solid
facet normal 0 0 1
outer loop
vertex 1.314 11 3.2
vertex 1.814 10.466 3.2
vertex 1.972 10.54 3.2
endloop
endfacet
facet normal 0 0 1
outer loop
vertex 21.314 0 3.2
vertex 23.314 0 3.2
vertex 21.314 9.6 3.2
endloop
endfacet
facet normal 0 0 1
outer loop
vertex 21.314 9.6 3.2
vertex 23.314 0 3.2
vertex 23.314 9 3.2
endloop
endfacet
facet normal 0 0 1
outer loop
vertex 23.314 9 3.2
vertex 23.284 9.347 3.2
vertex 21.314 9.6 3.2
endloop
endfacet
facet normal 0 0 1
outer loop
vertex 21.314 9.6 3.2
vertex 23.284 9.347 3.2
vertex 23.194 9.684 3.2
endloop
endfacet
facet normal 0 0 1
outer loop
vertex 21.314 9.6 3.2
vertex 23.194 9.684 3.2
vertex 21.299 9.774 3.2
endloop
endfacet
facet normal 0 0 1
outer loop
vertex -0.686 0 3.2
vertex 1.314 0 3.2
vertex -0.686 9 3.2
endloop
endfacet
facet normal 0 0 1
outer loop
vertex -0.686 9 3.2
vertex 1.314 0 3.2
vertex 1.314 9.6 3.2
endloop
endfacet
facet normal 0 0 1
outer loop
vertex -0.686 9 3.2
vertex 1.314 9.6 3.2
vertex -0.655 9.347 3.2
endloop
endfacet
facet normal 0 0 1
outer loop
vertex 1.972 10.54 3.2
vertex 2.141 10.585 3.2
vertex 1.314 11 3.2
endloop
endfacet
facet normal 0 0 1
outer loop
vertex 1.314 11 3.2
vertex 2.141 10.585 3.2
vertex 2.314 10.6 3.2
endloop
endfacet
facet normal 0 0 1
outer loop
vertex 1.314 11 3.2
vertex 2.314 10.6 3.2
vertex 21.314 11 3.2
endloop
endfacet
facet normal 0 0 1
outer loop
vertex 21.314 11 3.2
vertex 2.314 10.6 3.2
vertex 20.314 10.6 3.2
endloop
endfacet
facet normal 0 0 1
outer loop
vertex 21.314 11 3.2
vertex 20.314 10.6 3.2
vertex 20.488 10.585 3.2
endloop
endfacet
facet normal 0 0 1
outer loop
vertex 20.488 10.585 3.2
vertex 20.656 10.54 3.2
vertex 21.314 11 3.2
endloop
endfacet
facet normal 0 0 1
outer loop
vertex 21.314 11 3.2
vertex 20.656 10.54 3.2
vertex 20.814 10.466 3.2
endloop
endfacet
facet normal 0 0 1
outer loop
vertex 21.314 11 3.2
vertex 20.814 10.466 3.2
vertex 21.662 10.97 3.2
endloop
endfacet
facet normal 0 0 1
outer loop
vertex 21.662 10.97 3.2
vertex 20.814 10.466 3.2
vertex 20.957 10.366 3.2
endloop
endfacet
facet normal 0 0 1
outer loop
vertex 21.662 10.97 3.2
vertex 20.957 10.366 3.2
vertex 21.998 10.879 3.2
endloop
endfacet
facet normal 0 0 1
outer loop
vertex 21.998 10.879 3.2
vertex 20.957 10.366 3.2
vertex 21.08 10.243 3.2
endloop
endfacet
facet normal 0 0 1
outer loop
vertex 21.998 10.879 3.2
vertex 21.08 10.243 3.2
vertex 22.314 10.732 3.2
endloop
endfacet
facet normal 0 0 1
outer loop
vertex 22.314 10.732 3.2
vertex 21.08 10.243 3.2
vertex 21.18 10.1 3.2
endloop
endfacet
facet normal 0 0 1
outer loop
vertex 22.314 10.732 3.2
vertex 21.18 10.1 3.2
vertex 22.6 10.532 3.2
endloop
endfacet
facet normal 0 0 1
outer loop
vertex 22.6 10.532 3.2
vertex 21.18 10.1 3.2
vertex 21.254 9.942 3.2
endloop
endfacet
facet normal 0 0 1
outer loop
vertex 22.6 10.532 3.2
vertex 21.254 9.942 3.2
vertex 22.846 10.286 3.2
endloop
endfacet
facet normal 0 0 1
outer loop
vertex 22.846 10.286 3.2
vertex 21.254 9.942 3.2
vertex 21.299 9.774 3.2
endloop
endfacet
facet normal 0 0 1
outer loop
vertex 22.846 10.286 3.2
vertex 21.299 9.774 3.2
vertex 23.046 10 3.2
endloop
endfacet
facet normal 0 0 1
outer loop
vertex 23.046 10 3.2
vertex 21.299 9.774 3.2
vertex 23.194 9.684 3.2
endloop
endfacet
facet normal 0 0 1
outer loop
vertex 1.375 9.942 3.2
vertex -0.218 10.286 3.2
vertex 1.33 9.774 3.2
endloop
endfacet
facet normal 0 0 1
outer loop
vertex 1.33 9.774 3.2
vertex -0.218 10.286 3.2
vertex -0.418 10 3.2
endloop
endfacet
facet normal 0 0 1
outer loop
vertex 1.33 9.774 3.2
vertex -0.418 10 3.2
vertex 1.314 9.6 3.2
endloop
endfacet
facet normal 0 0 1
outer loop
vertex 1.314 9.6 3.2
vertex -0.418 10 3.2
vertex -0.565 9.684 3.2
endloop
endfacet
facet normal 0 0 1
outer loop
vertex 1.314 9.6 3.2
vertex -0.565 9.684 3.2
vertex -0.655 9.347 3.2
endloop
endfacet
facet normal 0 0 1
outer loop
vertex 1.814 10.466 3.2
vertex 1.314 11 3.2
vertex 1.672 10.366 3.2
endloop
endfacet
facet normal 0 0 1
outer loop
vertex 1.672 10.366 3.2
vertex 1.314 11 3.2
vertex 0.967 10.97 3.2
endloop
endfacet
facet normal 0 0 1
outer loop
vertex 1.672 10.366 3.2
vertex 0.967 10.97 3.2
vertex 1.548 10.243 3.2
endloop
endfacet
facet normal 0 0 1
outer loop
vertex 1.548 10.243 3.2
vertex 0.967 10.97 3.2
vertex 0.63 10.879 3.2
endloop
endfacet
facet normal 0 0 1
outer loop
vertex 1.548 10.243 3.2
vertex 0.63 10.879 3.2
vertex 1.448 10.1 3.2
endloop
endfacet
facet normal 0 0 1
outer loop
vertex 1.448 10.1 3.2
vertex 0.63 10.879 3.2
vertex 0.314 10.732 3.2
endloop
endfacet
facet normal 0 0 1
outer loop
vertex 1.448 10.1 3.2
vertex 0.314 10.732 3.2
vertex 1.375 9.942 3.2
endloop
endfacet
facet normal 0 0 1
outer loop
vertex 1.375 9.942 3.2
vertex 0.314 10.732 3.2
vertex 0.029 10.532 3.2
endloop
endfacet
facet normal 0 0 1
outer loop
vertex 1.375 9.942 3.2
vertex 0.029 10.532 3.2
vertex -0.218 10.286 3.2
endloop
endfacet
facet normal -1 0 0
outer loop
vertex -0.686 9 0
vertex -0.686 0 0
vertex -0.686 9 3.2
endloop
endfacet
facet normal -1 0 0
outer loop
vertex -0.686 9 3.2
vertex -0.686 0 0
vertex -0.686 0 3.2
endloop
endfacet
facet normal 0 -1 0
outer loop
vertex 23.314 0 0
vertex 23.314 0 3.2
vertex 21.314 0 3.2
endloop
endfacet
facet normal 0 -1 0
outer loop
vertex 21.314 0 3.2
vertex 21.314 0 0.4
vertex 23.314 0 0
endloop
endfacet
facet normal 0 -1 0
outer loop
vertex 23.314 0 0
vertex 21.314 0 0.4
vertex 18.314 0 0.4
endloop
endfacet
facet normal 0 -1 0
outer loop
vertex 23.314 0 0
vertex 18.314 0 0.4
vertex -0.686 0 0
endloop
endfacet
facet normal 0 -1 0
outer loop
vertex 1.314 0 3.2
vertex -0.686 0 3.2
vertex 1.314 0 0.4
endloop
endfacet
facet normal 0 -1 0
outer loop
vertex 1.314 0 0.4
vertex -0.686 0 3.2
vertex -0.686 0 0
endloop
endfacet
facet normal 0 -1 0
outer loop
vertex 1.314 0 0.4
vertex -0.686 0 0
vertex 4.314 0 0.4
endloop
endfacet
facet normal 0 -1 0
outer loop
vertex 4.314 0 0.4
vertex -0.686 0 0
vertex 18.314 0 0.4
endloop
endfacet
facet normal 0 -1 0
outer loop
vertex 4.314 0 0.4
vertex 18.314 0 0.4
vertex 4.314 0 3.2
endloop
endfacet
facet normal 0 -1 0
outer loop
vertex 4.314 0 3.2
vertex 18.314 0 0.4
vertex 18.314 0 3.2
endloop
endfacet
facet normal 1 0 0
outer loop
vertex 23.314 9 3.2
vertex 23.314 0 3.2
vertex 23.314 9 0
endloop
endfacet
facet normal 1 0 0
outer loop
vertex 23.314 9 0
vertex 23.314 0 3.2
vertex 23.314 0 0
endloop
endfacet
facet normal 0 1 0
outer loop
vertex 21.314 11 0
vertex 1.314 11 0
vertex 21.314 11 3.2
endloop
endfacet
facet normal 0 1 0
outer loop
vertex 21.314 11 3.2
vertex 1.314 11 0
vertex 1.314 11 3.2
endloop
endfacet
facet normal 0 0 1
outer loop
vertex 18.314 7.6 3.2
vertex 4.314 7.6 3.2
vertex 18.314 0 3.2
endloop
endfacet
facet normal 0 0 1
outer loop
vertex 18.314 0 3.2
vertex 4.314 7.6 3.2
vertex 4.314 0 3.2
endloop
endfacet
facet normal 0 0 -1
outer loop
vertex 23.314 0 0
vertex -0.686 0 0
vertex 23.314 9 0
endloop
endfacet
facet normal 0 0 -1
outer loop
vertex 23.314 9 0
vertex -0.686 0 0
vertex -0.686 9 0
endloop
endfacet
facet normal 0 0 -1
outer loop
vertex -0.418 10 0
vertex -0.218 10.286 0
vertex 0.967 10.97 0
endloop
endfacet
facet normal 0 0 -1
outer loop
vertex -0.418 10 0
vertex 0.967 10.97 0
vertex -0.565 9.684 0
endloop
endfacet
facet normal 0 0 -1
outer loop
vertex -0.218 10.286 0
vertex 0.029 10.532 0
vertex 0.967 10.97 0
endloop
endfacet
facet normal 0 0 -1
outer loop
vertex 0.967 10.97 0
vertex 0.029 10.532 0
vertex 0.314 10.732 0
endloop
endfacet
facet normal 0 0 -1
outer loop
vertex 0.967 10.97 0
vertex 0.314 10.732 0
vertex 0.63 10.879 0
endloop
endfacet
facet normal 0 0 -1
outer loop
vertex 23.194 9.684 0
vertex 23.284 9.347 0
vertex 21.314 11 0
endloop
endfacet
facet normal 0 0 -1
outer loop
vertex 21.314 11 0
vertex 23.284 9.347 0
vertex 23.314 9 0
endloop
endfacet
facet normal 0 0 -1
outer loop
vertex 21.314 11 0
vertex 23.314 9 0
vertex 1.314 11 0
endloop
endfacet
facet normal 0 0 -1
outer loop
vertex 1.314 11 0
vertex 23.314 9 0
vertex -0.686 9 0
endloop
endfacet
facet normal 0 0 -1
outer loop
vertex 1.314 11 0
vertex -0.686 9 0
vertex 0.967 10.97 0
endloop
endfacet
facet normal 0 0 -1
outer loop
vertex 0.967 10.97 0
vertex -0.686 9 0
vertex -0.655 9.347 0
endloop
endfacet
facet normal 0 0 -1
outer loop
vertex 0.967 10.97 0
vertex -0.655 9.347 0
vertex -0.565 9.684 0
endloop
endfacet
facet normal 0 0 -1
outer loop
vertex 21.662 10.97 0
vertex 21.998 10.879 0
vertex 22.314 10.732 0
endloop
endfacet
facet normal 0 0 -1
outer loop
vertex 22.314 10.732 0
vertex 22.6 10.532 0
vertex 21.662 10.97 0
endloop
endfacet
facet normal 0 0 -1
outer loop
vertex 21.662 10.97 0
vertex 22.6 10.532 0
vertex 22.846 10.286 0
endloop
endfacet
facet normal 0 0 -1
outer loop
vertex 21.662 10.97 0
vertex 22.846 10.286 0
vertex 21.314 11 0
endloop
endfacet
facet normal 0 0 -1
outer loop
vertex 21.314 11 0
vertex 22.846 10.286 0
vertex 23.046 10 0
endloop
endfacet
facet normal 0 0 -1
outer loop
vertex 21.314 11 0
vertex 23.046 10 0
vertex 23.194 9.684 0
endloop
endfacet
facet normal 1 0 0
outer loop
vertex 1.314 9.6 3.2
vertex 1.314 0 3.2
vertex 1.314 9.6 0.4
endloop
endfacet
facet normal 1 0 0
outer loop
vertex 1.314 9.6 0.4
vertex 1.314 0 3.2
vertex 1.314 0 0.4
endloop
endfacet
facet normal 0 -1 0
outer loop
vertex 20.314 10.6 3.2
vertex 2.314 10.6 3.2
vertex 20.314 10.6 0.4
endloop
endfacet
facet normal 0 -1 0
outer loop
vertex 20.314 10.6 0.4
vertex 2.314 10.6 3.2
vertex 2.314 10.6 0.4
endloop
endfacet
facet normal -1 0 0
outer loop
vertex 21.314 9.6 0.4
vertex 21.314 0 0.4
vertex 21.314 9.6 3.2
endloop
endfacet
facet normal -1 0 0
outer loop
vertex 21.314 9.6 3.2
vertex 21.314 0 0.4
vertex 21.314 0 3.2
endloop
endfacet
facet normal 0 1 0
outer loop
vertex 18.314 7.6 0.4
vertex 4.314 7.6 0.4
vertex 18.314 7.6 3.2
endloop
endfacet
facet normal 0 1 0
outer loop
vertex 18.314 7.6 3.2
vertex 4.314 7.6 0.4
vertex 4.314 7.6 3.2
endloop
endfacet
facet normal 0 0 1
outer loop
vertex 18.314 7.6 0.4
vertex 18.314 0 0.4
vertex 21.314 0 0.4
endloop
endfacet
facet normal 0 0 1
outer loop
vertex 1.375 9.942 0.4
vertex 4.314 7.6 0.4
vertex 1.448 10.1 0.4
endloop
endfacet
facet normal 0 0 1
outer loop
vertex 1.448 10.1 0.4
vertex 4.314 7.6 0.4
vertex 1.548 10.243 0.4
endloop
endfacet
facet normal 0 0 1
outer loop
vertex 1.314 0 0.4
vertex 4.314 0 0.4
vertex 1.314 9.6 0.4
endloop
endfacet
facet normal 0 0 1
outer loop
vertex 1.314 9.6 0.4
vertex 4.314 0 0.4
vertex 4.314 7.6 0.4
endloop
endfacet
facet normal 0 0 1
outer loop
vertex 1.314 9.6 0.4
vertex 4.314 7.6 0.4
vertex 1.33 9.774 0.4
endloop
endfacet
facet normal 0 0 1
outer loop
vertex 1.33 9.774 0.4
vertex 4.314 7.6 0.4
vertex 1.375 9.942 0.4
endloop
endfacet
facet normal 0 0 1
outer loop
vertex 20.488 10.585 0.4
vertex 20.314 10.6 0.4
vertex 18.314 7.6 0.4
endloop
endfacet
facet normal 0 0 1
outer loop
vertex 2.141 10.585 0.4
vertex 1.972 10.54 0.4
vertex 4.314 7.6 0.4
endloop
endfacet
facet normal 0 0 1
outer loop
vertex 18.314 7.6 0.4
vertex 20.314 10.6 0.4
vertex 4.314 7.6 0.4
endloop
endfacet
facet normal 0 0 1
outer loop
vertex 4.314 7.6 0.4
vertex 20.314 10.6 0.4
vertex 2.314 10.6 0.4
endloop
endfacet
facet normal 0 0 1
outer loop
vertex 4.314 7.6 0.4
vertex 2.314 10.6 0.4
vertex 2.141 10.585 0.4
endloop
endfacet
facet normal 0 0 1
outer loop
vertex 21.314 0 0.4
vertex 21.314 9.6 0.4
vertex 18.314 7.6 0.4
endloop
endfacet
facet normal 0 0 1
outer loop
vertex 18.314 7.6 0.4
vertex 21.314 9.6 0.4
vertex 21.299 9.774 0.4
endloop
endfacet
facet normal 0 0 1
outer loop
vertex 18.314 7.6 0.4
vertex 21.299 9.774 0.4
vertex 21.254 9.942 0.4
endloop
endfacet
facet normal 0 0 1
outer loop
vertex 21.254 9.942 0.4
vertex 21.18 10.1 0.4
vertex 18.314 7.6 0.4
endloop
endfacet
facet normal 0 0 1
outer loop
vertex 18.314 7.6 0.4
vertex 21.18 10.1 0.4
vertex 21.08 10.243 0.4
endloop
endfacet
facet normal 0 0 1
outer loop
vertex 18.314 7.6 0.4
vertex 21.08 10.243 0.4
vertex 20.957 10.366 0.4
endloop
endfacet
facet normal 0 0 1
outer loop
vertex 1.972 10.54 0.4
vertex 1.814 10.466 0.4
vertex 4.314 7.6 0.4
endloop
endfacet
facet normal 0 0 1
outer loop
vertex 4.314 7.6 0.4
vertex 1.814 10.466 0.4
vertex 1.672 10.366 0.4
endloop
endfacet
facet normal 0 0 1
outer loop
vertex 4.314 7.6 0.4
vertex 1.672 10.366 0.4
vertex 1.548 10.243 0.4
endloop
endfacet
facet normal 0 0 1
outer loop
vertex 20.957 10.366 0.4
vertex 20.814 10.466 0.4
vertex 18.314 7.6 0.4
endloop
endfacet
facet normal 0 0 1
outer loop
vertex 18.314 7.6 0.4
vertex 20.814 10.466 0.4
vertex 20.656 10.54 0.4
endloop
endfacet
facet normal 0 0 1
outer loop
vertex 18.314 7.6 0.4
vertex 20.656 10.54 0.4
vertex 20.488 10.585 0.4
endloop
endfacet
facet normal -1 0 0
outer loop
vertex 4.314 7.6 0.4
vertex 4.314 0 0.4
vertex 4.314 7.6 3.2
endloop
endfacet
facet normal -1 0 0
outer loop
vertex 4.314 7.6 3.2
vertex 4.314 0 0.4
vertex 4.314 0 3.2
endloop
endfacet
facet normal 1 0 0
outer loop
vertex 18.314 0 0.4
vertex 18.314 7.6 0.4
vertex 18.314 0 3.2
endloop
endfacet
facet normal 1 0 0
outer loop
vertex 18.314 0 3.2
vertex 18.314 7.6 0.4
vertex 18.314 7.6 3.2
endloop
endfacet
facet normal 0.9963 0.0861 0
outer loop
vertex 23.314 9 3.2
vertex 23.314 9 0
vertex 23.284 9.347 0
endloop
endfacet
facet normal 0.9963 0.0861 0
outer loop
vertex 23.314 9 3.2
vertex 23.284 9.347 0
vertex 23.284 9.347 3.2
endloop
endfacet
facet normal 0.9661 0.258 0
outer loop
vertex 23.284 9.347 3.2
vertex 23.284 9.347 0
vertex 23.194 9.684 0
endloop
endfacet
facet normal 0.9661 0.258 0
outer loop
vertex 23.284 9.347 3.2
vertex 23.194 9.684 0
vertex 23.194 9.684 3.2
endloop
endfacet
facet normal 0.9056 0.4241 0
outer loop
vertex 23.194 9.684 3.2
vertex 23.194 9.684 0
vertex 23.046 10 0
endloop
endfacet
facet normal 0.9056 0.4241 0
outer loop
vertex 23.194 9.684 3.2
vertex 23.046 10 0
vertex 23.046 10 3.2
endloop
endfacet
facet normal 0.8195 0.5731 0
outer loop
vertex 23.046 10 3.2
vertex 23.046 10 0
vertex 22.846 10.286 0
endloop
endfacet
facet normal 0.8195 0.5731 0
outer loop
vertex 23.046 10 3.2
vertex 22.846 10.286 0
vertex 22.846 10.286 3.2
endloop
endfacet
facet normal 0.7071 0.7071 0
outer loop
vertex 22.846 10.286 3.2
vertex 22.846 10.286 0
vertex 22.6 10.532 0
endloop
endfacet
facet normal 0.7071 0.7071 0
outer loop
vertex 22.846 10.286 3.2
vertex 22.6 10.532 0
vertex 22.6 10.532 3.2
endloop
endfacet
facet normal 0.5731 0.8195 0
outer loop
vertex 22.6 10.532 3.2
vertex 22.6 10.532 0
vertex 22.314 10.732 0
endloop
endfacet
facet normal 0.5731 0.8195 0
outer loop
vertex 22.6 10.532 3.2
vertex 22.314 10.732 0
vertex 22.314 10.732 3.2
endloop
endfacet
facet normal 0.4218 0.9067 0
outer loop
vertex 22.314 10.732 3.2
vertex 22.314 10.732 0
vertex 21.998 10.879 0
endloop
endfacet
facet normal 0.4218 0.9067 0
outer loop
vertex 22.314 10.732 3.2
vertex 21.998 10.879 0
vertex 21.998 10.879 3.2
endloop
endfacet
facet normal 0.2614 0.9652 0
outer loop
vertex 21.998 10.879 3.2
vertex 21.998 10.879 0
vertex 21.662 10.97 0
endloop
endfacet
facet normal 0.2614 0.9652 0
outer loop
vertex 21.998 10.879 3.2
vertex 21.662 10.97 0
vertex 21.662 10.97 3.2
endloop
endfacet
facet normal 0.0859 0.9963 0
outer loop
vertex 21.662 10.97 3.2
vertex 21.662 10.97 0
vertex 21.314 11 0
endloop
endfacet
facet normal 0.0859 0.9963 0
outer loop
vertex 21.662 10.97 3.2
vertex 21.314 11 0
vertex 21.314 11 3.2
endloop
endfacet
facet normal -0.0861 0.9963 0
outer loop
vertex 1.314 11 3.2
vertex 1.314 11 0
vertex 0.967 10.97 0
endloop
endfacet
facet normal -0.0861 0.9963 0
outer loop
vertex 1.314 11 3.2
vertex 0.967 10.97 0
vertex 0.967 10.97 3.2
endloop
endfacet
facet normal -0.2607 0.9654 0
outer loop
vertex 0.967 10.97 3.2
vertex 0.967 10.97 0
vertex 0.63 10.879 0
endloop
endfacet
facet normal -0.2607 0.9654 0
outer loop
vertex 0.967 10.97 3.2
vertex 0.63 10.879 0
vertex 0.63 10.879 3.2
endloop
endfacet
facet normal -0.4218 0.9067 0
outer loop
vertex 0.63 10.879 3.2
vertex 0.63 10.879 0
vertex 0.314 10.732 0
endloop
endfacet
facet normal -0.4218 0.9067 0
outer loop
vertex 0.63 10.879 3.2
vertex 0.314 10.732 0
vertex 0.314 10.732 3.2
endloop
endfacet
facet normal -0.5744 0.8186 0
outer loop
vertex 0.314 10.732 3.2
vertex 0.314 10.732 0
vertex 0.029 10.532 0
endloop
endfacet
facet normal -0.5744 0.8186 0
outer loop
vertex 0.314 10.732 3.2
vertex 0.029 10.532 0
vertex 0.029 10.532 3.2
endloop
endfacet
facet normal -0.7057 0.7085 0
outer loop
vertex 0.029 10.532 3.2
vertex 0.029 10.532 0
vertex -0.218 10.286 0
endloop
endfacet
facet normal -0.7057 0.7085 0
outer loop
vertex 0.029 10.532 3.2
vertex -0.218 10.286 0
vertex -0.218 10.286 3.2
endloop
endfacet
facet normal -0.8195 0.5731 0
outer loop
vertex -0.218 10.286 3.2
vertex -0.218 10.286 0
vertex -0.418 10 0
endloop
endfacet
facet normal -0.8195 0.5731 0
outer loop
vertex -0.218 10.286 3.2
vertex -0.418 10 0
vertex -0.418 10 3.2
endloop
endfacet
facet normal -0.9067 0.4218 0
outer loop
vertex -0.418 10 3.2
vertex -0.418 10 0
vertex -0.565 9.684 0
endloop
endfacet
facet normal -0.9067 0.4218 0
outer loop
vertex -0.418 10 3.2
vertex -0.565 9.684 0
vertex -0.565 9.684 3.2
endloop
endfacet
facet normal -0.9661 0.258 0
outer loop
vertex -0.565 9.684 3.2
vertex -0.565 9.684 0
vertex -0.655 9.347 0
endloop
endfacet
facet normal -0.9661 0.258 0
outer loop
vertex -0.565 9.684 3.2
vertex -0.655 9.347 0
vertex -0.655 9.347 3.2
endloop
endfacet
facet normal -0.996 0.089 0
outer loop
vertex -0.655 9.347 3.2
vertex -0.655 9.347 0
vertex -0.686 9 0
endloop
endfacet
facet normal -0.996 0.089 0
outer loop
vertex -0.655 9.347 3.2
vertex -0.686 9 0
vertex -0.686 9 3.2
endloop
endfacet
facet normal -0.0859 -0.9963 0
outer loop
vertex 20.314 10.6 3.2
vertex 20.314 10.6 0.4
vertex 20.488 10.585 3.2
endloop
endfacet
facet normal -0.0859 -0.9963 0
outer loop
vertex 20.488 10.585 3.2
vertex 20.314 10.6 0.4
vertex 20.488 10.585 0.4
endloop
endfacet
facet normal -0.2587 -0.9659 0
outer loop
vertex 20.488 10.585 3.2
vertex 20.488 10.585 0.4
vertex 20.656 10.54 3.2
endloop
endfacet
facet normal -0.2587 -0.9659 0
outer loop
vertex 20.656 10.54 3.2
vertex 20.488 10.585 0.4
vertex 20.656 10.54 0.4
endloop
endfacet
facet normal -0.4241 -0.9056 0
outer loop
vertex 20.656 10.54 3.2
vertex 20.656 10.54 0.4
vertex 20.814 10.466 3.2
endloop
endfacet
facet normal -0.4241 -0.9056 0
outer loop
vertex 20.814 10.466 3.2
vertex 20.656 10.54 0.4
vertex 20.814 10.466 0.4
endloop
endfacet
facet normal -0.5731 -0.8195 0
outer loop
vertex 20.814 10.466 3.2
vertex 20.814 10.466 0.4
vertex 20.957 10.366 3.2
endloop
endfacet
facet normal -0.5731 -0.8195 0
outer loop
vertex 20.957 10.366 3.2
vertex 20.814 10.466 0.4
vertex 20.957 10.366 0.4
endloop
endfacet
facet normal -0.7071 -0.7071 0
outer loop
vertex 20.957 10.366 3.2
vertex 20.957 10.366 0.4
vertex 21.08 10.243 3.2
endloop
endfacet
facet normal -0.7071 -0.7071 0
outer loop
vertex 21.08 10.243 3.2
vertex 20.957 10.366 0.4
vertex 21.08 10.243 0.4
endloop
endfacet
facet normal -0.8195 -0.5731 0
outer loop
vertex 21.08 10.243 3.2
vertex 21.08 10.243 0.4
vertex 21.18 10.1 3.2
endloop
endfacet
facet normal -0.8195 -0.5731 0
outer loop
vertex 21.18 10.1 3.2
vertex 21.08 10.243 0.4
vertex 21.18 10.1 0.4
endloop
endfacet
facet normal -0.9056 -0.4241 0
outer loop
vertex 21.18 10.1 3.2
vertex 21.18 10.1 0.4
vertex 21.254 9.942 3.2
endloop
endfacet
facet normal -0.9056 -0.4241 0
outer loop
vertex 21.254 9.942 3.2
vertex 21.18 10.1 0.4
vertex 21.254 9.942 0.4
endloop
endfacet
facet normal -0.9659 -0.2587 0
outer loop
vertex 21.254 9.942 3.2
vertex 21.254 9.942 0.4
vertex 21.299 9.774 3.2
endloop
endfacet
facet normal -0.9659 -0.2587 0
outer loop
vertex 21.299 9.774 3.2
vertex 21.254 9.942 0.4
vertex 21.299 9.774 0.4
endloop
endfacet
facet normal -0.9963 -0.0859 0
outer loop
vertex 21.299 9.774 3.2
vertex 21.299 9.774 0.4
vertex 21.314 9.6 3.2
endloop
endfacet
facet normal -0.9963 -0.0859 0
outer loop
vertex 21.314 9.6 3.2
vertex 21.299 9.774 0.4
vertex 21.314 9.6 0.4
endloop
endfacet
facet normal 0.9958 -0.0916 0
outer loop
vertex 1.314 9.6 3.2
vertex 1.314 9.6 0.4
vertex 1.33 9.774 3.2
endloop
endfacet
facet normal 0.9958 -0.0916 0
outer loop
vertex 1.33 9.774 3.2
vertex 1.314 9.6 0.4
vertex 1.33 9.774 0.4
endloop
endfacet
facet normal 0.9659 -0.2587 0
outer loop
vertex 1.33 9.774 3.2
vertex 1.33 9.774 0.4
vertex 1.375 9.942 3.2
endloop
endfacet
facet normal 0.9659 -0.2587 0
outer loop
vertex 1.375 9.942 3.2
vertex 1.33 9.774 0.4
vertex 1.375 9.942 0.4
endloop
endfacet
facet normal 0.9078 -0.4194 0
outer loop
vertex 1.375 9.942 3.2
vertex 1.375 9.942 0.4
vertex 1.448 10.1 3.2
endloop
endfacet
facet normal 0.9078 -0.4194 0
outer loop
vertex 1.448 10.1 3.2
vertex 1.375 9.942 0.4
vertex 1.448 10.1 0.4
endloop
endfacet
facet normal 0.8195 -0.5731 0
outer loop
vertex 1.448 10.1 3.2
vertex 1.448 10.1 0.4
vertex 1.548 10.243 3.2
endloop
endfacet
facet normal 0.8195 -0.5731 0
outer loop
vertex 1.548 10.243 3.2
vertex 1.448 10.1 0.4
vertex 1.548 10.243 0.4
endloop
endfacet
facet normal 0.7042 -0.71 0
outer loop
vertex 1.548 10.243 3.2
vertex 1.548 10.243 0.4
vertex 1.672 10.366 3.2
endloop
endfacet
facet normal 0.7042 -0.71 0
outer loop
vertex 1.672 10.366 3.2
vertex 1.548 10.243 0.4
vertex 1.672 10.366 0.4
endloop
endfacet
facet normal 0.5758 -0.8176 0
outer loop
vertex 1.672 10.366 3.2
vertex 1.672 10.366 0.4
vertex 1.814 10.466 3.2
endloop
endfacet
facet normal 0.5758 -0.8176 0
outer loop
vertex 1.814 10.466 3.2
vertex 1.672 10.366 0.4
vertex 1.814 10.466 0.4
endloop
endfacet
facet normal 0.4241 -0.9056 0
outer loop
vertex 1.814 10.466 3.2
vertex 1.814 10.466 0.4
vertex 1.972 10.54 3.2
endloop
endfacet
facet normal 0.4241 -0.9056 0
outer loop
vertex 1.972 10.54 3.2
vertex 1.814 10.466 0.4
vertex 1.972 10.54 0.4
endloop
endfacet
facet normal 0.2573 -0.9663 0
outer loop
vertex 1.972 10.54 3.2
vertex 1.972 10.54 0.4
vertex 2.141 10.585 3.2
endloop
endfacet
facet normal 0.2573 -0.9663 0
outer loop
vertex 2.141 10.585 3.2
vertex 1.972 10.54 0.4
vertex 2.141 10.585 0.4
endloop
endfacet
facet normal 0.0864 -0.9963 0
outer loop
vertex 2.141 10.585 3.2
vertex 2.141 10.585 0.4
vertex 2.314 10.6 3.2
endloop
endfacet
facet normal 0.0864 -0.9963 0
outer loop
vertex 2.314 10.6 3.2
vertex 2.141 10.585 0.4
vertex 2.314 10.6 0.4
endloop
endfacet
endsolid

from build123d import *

# Parameters (mm, degrees)
SKETCH_1_W          = 24
SKETCH_1_H          = 11
EXTRUDE_1_DEPTH     = 3.2
SKETCH_2_W          = 20
SKETCH_2_H          = 3
CUT_EXTRUDE_1_DEPTH = 2.8
SKETCH_3_W          = 3
SKETCH_3_H          = 7.6
CUT_EXTRUDE_2_DEPTH = 2.8
FILLET_1_R          = 2
FILLET_2_R          = 1


with BuildPart() as part:
    # ｽｹｯﾁ1 → ﾎﾞｽ - 押し出し1 (new body)
    with BuildSketch(Plane.XY):
        with Locations((11.314402496, 5.5)):
            Rectangle(SKETCH_1_W, SKETCH_1_H)
    extrude(amount=EXTRUDE_1_DEPTH)

    # ｽｹｯﾁ2 → ｶｯﾄ - 押し出し1 (cut)
    with BuildSketch(Plane.XY.offset(3.2)):
        with Locations((11.314402496, 9.1)):
            Rectangle(SKETCH_2_W, SKETCH_2_H)
    extrude(amount=-CUT_EXTRUDE_1_DEPTH, mode=Mode.SUBTRACT)

    # ｽｹｯﾁ3 → ｶｯﾄ - 押し出し2 (cut)
    with BuildSketch(Plane.XY.offset(3.2)):
        with Locations((19.814402496, 3.8)):
            Rectangle(SKETCH_3_W, SKETCH_3_H)
        with Locations((2.814402496, 3.8)):
            Rectangle(SKETCH_3_W, SKETCH_3_H)
    extrude(amount=-CUT_EXTRUDE_2_DEPTH, mode=Mode.SUBTRACT)

    # ﾌｨﾚｯﾄ1
    fillet_1_edges = [part.edges().sort_by_distance(p)[0] for p in [
        (-0.685597504, 11, 1.6),
        (23.314402496, 11, 1.6),
    ]]
    fillet(fillet_1_edges, radius=FILLET_1_R)

    # ﾌｨﾚｯﾄ2
    fillet_2_edges = [part.edges().sort_by_distance(p)[0] for p in [
        (1.314402496, 10.6, 1.8),
        (21.314402496, 10.6, 1.8),
    ]]
    fillet(fillet_2_edges, radius=FILLET_2_R)


solid = part.part
